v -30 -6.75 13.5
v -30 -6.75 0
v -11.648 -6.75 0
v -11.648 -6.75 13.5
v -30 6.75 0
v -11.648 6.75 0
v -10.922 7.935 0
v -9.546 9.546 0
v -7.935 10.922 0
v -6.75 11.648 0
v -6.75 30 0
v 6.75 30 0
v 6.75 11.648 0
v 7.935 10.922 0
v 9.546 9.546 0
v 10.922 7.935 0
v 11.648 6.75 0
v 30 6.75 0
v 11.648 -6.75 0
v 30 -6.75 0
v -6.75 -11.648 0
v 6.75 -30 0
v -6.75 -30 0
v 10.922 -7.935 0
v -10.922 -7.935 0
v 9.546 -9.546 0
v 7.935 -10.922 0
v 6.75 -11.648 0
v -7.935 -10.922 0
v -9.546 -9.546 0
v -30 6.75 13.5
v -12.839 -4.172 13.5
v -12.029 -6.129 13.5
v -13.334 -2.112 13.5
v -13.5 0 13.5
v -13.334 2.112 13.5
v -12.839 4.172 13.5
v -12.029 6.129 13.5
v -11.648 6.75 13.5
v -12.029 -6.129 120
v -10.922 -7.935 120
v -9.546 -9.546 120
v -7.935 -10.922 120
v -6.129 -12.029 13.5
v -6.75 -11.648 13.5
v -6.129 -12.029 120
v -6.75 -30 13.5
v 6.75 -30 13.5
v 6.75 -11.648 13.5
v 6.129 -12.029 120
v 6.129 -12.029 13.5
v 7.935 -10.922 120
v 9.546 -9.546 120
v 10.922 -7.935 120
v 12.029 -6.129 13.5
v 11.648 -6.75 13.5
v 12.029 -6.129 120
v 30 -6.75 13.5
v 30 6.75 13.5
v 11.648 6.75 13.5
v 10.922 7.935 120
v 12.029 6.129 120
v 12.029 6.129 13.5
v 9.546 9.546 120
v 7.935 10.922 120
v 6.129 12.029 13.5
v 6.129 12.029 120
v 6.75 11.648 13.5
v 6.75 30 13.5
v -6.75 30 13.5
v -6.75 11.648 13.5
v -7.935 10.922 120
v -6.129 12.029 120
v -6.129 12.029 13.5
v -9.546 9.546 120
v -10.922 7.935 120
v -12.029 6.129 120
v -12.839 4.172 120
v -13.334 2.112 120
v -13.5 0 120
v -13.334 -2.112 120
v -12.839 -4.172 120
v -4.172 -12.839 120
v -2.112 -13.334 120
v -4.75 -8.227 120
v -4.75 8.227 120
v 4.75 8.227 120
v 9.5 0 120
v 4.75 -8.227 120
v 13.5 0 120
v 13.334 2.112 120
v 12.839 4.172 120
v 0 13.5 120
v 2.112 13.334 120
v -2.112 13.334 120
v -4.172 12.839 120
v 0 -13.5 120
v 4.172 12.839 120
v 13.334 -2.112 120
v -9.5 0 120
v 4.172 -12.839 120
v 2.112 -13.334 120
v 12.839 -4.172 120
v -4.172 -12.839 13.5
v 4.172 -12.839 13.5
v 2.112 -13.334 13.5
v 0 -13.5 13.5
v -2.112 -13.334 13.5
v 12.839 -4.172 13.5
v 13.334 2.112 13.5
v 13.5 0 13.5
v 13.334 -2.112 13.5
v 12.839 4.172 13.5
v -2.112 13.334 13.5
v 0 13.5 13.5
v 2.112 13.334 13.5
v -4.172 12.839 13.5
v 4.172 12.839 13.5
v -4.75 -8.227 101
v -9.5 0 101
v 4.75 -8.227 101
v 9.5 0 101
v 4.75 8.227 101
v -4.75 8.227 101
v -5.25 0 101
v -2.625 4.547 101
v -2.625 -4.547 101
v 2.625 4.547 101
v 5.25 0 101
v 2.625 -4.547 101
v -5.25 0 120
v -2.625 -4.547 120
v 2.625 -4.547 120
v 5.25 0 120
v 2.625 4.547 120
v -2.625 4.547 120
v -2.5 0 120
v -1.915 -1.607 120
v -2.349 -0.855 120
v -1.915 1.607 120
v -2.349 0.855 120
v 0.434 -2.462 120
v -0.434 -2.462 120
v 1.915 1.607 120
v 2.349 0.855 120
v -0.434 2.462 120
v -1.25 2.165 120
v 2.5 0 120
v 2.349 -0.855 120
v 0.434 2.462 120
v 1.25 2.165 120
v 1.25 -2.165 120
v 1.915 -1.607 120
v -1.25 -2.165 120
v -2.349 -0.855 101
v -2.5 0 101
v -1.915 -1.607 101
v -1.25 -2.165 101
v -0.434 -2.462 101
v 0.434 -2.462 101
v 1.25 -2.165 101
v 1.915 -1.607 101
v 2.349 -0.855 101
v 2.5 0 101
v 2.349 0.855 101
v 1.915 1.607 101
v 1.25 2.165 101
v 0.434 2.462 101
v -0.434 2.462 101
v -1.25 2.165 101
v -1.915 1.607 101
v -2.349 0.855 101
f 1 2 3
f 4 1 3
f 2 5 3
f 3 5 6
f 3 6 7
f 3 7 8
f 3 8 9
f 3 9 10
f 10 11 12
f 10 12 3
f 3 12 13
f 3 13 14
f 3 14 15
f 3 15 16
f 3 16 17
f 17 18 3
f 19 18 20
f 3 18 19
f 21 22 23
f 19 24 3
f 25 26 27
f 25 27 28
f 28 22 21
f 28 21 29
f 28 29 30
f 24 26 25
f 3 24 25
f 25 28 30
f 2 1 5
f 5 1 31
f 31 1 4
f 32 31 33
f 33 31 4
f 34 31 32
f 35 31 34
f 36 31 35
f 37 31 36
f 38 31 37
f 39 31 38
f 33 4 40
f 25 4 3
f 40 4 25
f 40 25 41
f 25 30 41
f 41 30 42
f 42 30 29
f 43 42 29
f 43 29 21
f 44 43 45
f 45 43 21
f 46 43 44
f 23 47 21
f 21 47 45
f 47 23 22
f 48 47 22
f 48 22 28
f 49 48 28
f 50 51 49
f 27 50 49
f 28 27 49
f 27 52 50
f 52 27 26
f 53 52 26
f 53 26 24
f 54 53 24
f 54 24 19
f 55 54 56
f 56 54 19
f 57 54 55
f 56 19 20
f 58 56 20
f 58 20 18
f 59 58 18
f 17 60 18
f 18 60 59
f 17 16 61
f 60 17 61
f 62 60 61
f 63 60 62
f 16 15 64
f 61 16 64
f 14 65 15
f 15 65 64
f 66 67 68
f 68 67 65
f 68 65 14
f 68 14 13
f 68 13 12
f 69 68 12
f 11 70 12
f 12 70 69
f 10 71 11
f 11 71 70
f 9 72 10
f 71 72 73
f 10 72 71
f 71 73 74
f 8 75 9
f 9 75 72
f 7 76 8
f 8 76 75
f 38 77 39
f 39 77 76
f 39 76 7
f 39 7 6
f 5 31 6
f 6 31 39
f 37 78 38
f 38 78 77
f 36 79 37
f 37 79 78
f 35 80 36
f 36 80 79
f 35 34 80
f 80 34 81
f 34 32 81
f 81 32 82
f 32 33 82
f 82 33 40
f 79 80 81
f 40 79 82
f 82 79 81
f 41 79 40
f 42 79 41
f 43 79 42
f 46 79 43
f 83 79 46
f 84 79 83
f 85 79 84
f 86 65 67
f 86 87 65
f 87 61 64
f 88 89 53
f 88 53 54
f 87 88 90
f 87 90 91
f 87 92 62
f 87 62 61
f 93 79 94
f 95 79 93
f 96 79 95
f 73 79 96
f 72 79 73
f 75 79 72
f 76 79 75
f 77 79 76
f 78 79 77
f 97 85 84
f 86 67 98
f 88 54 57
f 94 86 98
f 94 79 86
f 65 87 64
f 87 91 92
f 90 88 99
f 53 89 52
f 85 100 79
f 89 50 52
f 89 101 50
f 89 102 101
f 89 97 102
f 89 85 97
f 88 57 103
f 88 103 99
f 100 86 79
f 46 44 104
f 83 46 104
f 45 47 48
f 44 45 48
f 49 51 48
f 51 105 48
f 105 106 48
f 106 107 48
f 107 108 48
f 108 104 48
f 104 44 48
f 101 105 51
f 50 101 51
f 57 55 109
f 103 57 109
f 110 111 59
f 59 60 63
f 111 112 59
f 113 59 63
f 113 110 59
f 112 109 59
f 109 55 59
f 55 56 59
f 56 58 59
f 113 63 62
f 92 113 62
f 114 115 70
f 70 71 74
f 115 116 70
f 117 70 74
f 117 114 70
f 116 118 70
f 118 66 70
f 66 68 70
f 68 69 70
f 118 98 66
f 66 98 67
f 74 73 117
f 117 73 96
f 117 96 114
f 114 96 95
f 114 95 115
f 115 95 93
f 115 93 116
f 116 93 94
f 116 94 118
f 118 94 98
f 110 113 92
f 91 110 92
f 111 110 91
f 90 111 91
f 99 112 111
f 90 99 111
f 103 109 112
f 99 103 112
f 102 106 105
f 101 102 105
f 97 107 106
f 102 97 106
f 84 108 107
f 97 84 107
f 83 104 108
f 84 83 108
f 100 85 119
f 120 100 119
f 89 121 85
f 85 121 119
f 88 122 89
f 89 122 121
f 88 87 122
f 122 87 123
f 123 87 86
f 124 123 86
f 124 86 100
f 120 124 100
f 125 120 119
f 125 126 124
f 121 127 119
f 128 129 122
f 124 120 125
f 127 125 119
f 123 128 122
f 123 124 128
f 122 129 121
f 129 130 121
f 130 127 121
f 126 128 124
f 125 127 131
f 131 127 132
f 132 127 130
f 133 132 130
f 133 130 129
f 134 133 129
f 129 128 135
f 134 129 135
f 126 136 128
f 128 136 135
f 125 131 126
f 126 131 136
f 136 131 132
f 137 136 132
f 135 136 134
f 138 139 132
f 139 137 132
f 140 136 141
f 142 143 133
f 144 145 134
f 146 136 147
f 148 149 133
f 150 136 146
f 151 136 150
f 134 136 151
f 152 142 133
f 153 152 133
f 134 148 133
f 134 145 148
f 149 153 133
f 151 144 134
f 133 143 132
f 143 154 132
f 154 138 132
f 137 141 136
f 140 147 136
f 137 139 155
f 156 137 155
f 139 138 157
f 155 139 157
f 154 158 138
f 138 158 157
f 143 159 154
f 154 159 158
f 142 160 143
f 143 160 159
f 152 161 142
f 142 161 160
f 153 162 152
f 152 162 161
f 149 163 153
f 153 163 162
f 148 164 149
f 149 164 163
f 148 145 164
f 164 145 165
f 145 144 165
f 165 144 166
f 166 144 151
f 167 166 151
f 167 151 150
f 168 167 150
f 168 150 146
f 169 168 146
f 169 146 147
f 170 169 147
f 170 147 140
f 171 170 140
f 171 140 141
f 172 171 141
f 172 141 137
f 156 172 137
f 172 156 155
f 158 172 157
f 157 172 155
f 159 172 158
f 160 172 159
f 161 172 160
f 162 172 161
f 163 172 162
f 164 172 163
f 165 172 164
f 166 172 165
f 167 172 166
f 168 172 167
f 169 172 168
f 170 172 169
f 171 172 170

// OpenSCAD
/*
 *  OpenSCAD stop_cock.scad 
 *  Copyright (C) 2014 Mogue Carpenter
 *
 *  License: LGPL 2.1 or later
 *
 *  Creates a stop cock key for
 *  opening and closing the mains 
 *  water supply valve.
 *
*/
	inner_cyc_r = 5/2;
	outer_cyc_r = 27/2;

	shaft_h = 100;
	shaft_r = 27/2;
	shaft_taper_h = 20;

	cyc_h = 20;

	inner_hex_side = 5;
	inner_hex_r = 10.5/2;

	outer_hex_side = 10;
	outer_hex_r = 19/2;

	handel_w = 60;



//	translate([0,0,cyc_h+shaft_h])
//		rotate ([0,180,0])
			stopcock ();

module stopcock (){

	// Socket
	translate([0,0,shaft_h])
		union (){
			difference(){
				cylinder(r = outer_cyc_r, h=cyc_h, $fn=40);
				cylinder(r = outer_hex_r, h=cyc_h, $fn=6);
			}
			difference(){
				cylinder(r = inner_hex_r, h=cyc_h, $fn=6);
				cylinder(r = inner_cyc_r, h=cyc_h, $fn=18);
			}
	}

	// Taper
//	translate([0,0,cyc_h])
//		cylinder(r1 = outer_cyc_r,r = shaft_r, h=shaft_taper_h, $fn=40);

	// Shaft
	translate([0,0,0])
		cylinder(r = shaft_r, h=shaft_h+1, $fn=40);

	// Handle
	translate([-shaft_r/2,-handel_w/2,0])
		cube([shaft_r,handel_w,shaft_r],center=false);

	translate([handel_w/2,-shaft_r/2,0])
		rotate ([0,0,90])
			cube([shaft_r,handel_w,shaft_r],center=false);
}
